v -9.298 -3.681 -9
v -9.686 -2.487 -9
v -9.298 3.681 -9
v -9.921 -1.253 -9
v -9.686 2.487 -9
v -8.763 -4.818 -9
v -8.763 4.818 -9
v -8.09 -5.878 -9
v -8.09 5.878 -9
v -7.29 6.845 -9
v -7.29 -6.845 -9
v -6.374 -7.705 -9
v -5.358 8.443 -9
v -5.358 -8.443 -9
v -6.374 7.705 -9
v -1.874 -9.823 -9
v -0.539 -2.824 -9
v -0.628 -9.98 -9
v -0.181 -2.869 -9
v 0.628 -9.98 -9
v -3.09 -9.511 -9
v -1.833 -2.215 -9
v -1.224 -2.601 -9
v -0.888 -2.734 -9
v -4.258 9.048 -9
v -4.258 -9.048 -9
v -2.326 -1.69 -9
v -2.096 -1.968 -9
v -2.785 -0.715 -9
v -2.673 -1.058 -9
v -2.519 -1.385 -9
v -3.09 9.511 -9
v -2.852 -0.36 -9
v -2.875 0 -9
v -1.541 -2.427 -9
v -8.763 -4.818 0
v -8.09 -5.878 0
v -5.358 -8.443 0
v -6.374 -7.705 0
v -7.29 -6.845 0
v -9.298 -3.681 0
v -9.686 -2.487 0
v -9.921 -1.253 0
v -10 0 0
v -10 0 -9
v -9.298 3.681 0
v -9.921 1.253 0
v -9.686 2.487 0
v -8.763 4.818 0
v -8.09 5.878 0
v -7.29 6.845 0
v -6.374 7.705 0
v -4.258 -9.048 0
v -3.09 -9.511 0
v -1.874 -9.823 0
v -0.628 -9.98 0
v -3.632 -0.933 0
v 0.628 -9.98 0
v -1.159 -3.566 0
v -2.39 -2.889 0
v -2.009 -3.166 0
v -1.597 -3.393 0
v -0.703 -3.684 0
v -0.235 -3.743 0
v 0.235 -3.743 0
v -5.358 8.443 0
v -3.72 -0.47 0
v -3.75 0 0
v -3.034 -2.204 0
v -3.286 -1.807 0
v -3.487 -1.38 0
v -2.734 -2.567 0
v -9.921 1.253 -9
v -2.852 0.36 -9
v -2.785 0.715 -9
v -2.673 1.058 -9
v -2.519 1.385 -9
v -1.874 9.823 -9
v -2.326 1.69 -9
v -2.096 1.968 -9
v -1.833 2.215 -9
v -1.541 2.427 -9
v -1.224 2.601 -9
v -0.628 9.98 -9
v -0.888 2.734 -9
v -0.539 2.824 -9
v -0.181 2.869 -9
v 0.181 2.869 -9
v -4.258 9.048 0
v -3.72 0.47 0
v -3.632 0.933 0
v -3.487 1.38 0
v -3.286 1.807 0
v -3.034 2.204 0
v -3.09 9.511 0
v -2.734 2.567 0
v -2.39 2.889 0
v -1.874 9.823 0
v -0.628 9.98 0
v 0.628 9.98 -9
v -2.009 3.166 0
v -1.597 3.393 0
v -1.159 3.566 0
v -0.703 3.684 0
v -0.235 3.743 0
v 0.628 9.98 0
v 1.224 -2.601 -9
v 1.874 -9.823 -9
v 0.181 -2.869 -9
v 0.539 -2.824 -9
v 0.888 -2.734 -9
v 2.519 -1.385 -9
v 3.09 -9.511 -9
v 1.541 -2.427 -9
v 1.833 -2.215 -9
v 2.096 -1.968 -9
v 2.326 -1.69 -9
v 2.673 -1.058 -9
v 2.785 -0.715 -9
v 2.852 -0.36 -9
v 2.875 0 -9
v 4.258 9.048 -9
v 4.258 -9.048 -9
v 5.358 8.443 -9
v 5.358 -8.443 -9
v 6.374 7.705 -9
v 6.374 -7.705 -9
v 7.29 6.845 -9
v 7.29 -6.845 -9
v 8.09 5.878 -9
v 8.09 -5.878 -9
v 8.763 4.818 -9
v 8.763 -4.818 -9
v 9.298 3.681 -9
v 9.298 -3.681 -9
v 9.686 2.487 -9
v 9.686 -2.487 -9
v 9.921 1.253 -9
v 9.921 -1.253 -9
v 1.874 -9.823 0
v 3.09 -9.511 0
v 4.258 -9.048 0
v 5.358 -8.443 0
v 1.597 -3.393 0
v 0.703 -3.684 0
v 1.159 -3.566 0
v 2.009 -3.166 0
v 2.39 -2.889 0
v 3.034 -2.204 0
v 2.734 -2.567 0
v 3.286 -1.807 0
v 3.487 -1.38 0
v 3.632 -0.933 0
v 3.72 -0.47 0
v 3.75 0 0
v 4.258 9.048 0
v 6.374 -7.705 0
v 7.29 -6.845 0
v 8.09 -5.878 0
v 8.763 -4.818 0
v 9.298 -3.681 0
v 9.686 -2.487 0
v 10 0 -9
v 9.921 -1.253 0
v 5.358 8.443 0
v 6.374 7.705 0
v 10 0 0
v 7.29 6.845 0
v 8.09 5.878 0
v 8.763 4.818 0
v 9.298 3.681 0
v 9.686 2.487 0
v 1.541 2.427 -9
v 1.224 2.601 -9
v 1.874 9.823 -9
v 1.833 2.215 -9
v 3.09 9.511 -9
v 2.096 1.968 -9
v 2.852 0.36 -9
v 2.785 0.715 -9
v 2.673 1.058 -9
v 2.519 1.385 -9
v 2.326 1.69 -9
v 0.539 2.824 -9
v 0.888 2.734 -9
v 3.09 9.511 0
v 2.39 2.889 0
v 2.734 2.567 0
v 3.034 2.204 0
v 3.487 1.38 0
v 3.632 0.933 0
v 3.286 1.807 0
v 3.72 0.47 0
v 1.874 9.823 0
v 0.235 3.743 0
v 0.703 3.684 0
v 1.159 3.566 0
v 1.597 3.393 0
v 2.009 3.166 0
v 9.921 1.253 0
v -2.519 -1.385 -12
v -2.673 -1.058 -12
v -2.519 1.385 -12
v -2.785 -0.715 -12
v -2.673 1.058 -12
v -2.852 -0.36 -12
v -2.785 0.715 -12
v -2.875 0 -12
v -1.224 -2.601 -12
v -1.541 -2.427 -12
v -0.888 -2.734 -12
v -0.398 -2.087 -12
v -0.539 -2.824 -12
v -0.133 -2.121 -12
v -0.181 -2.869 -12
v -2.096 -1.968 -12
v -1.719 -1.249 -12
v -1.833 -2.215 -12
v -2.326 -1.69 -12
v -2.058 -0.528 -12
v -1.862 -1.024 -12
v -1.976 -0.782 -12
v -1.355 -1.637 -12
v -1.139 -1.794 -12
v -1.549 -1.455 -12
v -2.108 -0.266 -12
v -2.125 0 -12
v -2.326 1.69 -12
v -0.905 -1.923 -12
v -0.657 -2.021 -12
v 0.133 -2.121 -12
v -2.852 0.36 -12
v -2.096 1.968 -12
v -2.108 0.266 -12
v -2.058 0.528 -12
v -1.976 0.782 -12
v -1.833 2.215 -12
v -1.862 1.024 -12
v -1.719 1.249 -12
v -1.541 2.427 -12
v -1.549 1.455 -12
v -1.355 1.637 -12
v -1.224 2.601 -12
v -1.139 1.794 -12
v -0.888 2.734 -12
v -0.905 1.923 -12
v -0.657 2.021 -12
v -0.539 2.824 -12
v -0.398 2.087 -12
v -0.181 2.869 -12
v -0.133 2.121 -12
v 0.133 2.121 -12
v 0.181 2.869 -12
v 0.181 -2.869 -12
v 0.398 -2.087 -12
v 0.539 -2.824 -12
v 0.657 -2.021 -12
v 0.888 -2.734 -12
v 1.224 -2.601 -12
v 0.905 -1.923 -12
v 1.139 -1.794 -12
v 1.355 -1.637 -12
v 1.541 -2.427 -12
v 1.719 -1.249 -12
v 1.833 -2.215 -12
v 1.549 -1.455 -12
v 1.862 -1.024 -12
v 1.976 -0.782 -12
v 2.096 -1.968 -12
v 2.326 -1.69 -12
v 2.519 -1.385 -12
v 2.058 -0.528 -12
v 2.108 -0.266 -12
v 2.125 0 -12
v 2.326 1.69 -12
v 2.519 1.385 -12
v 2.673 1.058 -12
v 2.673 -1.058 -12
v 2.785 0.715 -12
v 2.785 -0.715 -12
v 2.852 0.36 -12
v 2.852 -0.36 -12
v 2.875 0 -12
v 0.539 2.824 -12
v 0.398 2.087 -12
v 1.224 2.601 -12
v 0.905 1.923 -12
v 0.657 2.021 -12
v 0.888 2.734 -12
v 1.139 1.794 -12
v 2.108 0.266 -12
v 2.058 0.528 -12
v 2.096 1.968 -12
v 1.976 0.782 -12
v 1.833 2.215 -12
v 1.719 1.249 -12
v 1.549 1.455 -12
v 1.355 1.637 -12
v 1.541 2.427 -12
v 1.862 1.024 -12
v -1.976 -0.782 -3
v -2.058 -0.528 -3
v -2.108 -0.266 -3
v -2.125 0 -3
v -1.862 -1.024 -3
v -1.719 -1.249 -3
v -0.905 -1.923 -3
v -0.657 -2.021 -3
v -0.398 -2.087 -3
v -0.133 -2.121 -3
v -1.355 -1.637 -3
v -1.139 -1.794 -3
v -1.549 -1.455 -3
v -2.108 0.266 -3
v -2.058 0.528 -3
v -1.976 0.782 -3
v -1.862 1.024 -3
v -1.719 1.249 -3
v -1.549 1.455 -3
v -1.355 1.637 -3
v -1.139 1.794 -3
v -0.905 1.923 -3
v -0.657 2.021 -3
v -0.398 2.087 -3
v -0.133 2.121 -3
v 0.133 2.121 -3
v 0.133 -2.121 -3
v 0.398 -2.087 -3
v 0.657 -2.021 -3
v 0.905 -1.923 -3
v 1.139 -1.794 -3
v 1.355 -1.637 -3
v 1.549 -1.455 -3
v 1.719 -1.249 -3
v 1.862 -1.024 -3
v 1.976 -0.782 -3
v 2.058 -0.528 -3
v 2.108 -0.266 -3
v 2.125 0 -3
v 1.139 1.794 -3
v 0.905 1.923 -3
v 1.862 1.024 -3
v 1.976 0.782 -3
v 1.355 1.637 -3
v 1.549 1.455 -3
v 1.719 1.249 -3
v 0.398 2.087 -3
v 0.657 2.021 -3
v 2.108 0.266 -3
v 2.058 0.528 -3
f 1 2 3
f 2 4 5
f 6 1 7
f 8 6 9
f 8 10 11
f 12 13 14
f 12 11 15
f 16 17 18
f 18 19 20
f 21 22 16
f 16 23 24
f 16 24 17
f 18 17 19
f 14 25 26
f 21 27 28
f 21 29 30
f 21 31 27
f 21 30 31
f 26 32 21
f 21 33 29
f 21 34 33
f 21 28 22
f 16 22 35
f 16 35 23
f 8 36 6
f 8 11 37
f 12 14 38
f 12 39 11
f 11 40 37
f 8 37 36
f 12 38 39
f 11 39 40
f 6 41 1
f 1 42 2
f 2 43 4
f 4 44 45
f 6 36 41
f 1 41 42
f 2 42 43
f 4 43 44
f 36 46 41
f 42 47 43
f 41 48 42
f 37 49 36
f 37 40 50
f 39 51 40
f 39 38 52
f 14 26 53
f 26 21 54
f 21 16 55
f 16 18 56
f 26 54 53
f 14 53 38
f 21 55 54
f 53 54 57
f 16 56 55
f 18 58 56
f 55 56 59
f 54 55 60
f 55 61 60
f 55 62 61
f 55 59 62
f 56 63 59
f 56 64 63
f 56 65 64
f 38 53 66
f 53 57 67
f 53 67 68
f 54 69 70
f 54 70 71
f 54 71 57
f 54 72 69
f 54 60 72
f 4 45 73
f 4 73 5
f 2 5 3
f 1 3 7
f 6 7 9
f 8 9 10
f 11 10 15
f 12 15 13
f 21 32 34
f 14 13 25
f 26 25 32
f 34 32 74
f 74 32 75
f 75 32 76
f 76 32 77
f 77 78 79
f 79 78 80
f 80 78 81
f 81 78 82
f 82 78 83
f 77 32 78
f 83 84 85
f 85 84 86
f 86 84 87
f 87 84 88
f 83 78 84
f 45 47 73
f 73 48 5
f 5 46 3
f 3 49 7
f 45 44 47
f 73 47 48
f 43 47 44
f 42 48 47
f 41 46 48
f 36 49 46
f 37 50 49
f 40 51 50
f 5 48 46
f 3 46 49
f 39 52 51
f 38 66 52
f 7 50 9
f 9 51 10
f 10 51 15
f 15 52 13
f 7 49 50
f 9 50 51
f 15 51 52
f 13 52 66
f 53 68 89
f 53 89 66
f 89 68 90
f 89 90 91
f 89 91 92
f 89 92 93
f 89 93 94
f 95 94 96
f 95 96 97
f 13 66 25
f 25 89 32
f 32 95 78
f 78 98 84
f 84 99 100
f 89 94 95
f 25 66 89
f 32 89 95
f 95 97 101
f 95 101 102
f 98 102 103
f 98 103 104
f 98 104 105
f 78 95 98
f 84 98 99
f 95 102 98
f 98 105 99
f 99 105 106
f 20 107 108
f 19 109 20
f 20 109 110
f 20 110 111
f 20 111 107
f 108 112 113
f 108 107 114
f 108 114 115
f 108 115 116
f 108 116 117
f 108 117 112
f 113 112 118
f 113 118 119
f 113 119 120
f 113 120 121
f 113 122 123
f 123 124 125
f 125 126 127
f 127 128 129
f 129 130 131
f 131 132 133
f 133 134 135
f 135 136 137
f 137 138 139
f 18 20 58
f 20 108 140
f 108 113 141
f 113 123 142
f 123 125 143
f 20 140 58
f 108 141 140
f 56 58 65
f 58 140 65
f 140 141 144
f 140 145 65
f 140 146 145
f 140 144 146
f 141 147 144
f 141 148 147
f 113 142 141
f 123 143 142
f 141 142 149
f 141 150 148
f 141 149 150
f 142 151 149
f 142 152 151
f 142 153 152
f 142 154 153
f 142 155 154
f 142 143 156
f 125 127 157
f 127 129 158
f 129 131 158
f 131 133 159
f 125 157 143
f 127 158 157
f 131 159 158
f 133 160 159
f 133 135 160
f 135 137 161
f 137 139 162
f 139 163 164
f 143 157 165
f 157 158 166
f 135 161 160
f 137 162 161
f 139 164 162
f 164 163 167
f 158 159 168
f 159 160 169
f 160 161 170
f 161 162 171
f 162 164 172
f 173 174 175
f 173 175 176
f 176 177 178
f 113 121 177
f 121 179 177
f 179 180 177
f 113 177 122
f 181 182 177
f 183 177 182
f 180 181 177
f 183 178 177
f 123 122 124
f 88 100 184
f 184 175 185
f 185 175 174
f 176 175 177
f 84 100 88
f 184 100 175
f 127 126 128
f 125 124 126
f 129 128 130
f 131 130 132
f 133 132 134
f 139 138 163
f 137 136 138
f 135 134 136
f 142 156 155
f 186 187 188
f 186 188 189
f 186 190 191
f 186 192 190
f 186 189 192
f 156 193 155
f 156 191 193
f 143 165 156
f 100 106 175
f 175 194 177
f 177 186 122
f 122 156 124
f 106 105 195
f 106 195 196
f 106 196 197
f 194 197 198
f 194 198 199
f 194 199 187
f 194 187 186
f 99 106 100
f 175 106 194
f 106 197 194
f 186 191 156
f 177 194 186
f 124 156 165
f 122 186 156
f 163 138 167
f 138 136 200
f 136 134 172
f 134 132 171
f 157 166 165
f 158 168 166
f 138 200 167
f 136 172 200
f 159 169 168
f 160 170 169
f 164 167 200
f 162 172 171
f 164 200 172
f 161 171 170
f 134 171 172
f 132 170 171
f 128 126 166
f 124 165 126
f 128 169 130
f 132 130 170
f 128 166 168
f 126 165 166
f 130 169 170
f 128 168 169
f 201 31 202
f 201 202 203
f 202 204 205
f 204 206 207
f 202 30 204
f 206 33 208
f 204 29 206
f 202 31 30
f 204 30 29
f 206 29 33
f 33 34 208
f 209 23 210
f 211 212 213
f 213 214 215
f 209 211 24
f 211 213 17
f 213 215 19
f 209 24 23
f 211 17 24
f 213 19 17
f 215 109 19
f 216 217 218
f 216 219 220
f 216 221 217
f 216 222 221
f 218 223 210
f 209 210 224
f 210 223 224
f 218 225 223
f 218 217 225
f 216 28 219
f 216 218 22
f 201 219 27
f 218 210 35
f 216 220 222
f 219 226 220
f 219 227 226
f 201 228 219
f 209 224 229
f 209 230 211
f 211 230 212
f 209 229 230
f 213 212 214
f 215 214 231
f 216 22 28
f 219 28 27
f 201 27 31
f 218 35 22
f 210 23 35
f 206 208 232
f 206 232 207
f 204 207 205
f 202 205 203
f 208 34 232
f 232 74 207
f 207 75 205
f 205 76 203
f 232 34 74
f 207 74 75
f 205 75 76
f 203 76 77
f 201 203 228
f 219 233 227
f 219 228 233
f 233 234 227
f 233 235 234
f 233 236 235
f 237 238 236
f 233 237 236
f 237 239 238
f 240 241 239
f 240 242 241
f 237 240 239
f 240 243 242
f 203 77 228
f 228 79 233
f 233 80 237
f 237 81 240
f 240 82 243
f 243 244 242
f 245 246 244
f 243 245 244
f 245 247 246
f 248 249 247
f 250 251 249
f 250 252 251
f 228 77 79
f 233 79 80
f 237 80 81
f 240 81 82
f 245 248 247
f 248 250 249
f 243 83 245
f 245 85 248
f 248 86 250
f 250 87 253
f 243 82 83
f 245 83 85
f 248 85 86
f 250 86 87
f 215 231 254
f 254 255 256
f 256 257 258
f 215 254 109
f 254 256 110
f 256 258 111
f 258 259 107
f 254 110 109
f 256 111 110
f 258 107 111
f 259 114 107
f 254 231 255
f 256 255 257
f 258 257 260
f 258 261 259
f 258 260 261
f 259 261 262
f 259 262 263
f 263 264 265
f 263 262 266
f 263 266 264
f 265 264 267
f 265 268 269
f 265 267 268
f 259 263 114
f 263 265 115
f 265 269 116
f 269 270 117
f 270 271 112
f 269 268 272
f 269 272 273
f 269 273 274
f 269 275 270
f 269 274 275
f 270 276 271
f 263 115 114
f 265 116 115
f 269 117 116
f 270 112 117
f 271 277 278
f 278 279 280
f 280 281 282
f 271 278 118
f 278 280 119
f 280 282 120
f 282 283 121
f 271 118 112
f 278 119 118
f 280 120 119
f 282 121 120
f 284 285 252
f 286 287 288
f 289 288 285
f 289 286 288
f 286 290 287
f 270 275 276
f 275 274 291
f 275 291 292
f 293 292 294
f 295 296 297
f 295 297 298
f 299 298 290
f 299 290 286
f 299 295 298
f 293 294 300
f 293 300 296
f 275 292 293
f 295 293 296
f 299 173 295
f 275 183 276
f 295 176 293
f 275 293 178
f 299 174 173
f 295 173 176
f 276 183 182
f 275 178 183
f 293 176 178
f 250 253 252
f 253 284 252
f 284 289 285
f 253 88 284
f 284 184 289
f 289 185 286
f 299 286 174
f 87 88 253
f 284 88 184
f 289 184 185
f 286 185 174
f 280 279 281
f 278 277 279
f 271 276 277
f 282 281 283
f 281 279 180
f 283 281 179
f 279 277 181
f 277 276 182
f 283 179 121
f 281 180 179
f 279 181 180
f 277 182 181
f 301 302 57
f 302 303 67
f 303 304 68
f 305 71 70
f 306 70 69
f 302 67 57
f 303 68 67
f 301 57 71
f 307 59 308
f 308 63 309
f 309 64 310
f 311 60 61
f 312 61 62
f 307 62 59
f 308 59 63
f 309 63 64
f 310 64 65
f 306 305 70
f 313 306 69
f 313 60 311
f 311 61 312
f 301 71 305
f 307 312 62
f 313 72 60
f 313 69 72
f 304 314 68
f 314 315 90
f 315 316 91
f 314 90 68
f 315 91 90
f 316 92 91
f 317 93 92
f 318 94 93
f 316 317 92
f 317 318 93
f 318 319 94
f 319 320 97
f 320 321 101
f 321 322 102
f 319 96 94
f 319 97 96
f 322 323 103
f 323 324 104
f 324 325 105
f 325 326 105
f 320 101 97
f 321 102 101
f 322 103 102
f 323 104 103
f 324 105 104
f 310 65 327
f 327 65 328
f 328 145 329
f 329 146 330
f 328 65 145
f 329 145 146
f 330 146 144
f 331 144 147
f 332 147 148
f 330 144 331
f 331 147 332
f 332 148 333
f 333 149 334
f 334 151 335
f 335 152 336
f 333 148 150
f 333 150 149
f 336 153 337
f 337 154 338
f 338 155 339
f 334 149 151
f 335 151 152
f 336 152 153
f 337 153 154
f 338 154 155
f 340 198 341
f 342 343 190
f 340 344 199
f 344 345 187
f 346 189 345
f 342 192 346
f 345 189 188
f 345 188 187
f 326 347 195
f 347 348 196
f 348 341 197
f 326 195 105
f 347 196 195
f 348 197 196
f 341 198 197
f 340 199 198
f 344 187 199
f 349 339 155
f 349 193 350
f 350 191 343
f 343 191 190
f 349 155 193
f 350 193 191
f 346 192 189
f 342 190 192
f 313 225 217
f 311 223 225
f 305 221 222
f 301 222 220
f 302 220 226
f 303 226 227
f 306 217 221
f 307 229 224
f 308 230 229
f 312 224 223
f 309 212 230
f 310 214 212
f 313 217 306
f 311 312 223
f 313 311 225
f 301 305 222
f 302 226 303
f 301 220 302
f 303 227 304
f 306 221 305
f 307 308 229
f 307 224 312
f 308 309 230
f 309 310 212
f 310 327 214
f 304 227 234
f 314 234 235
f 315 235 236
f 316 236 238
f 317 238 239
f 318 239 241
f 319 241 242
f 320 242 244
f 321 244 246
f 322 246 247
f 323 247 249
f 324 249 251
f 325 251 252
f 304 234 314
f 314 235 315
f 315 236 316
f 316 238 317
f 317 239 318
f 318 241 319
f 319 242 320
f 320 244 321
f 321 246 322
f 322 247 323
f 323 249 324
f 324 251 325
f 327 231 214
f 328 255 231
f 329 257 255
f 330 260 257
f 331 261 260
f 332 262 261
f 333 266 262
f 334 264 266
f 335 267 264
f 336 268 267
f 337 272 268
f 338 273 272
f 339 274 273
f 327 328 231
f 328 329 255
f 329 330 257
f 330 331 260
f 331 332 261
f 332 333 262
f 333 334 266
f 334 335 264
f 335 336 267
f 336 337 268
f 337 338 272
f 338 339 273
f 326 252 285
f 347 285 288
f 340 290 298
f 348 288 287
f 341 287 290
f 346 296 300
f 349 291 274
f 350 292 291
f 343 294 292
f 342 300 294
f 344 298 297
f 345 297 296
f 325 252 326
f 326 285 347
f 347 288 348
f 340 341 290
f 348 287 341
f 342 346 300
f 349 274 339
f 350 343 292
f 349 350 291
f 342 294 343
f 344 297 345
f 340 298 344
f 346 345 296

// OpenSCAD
$fn = 50;


difference() {
	union() {
		translate(v = [0, 0, -9.0000000000]) {
			cylinder(h = 9, r = 10.0000000000);
		}
		#translate(v = [0, 0, -12.0000000000]) {
			cylinder(h = 12, r = 2.8750000000);
		}
	}
	union() {
		translate(v = [0, 0, 0]) {
			rotate(a = [0, 0, 0]) {
				difference() {
					union() {
						translate(v = [0, 0, -12.0000000000]) {
							cylinder(h = 12, r = 2.0000000000);
						}
						translate(v = [0, 0, -3]) {
							cylinder(h = 3, r1 = 2.1250000000, r2 = 3.7500000000);
						}
						translate(v = [0, 0, -12.0000000000]) {
							cylinder(h = 12, r = 2.1250000000);
						}
						translate(v = [0, 0, -12.0000000000]) {
							cylinder(h = 12, r = 2.0000000000);
						}
					}
					union();
				}
			}
		}
	}
}
